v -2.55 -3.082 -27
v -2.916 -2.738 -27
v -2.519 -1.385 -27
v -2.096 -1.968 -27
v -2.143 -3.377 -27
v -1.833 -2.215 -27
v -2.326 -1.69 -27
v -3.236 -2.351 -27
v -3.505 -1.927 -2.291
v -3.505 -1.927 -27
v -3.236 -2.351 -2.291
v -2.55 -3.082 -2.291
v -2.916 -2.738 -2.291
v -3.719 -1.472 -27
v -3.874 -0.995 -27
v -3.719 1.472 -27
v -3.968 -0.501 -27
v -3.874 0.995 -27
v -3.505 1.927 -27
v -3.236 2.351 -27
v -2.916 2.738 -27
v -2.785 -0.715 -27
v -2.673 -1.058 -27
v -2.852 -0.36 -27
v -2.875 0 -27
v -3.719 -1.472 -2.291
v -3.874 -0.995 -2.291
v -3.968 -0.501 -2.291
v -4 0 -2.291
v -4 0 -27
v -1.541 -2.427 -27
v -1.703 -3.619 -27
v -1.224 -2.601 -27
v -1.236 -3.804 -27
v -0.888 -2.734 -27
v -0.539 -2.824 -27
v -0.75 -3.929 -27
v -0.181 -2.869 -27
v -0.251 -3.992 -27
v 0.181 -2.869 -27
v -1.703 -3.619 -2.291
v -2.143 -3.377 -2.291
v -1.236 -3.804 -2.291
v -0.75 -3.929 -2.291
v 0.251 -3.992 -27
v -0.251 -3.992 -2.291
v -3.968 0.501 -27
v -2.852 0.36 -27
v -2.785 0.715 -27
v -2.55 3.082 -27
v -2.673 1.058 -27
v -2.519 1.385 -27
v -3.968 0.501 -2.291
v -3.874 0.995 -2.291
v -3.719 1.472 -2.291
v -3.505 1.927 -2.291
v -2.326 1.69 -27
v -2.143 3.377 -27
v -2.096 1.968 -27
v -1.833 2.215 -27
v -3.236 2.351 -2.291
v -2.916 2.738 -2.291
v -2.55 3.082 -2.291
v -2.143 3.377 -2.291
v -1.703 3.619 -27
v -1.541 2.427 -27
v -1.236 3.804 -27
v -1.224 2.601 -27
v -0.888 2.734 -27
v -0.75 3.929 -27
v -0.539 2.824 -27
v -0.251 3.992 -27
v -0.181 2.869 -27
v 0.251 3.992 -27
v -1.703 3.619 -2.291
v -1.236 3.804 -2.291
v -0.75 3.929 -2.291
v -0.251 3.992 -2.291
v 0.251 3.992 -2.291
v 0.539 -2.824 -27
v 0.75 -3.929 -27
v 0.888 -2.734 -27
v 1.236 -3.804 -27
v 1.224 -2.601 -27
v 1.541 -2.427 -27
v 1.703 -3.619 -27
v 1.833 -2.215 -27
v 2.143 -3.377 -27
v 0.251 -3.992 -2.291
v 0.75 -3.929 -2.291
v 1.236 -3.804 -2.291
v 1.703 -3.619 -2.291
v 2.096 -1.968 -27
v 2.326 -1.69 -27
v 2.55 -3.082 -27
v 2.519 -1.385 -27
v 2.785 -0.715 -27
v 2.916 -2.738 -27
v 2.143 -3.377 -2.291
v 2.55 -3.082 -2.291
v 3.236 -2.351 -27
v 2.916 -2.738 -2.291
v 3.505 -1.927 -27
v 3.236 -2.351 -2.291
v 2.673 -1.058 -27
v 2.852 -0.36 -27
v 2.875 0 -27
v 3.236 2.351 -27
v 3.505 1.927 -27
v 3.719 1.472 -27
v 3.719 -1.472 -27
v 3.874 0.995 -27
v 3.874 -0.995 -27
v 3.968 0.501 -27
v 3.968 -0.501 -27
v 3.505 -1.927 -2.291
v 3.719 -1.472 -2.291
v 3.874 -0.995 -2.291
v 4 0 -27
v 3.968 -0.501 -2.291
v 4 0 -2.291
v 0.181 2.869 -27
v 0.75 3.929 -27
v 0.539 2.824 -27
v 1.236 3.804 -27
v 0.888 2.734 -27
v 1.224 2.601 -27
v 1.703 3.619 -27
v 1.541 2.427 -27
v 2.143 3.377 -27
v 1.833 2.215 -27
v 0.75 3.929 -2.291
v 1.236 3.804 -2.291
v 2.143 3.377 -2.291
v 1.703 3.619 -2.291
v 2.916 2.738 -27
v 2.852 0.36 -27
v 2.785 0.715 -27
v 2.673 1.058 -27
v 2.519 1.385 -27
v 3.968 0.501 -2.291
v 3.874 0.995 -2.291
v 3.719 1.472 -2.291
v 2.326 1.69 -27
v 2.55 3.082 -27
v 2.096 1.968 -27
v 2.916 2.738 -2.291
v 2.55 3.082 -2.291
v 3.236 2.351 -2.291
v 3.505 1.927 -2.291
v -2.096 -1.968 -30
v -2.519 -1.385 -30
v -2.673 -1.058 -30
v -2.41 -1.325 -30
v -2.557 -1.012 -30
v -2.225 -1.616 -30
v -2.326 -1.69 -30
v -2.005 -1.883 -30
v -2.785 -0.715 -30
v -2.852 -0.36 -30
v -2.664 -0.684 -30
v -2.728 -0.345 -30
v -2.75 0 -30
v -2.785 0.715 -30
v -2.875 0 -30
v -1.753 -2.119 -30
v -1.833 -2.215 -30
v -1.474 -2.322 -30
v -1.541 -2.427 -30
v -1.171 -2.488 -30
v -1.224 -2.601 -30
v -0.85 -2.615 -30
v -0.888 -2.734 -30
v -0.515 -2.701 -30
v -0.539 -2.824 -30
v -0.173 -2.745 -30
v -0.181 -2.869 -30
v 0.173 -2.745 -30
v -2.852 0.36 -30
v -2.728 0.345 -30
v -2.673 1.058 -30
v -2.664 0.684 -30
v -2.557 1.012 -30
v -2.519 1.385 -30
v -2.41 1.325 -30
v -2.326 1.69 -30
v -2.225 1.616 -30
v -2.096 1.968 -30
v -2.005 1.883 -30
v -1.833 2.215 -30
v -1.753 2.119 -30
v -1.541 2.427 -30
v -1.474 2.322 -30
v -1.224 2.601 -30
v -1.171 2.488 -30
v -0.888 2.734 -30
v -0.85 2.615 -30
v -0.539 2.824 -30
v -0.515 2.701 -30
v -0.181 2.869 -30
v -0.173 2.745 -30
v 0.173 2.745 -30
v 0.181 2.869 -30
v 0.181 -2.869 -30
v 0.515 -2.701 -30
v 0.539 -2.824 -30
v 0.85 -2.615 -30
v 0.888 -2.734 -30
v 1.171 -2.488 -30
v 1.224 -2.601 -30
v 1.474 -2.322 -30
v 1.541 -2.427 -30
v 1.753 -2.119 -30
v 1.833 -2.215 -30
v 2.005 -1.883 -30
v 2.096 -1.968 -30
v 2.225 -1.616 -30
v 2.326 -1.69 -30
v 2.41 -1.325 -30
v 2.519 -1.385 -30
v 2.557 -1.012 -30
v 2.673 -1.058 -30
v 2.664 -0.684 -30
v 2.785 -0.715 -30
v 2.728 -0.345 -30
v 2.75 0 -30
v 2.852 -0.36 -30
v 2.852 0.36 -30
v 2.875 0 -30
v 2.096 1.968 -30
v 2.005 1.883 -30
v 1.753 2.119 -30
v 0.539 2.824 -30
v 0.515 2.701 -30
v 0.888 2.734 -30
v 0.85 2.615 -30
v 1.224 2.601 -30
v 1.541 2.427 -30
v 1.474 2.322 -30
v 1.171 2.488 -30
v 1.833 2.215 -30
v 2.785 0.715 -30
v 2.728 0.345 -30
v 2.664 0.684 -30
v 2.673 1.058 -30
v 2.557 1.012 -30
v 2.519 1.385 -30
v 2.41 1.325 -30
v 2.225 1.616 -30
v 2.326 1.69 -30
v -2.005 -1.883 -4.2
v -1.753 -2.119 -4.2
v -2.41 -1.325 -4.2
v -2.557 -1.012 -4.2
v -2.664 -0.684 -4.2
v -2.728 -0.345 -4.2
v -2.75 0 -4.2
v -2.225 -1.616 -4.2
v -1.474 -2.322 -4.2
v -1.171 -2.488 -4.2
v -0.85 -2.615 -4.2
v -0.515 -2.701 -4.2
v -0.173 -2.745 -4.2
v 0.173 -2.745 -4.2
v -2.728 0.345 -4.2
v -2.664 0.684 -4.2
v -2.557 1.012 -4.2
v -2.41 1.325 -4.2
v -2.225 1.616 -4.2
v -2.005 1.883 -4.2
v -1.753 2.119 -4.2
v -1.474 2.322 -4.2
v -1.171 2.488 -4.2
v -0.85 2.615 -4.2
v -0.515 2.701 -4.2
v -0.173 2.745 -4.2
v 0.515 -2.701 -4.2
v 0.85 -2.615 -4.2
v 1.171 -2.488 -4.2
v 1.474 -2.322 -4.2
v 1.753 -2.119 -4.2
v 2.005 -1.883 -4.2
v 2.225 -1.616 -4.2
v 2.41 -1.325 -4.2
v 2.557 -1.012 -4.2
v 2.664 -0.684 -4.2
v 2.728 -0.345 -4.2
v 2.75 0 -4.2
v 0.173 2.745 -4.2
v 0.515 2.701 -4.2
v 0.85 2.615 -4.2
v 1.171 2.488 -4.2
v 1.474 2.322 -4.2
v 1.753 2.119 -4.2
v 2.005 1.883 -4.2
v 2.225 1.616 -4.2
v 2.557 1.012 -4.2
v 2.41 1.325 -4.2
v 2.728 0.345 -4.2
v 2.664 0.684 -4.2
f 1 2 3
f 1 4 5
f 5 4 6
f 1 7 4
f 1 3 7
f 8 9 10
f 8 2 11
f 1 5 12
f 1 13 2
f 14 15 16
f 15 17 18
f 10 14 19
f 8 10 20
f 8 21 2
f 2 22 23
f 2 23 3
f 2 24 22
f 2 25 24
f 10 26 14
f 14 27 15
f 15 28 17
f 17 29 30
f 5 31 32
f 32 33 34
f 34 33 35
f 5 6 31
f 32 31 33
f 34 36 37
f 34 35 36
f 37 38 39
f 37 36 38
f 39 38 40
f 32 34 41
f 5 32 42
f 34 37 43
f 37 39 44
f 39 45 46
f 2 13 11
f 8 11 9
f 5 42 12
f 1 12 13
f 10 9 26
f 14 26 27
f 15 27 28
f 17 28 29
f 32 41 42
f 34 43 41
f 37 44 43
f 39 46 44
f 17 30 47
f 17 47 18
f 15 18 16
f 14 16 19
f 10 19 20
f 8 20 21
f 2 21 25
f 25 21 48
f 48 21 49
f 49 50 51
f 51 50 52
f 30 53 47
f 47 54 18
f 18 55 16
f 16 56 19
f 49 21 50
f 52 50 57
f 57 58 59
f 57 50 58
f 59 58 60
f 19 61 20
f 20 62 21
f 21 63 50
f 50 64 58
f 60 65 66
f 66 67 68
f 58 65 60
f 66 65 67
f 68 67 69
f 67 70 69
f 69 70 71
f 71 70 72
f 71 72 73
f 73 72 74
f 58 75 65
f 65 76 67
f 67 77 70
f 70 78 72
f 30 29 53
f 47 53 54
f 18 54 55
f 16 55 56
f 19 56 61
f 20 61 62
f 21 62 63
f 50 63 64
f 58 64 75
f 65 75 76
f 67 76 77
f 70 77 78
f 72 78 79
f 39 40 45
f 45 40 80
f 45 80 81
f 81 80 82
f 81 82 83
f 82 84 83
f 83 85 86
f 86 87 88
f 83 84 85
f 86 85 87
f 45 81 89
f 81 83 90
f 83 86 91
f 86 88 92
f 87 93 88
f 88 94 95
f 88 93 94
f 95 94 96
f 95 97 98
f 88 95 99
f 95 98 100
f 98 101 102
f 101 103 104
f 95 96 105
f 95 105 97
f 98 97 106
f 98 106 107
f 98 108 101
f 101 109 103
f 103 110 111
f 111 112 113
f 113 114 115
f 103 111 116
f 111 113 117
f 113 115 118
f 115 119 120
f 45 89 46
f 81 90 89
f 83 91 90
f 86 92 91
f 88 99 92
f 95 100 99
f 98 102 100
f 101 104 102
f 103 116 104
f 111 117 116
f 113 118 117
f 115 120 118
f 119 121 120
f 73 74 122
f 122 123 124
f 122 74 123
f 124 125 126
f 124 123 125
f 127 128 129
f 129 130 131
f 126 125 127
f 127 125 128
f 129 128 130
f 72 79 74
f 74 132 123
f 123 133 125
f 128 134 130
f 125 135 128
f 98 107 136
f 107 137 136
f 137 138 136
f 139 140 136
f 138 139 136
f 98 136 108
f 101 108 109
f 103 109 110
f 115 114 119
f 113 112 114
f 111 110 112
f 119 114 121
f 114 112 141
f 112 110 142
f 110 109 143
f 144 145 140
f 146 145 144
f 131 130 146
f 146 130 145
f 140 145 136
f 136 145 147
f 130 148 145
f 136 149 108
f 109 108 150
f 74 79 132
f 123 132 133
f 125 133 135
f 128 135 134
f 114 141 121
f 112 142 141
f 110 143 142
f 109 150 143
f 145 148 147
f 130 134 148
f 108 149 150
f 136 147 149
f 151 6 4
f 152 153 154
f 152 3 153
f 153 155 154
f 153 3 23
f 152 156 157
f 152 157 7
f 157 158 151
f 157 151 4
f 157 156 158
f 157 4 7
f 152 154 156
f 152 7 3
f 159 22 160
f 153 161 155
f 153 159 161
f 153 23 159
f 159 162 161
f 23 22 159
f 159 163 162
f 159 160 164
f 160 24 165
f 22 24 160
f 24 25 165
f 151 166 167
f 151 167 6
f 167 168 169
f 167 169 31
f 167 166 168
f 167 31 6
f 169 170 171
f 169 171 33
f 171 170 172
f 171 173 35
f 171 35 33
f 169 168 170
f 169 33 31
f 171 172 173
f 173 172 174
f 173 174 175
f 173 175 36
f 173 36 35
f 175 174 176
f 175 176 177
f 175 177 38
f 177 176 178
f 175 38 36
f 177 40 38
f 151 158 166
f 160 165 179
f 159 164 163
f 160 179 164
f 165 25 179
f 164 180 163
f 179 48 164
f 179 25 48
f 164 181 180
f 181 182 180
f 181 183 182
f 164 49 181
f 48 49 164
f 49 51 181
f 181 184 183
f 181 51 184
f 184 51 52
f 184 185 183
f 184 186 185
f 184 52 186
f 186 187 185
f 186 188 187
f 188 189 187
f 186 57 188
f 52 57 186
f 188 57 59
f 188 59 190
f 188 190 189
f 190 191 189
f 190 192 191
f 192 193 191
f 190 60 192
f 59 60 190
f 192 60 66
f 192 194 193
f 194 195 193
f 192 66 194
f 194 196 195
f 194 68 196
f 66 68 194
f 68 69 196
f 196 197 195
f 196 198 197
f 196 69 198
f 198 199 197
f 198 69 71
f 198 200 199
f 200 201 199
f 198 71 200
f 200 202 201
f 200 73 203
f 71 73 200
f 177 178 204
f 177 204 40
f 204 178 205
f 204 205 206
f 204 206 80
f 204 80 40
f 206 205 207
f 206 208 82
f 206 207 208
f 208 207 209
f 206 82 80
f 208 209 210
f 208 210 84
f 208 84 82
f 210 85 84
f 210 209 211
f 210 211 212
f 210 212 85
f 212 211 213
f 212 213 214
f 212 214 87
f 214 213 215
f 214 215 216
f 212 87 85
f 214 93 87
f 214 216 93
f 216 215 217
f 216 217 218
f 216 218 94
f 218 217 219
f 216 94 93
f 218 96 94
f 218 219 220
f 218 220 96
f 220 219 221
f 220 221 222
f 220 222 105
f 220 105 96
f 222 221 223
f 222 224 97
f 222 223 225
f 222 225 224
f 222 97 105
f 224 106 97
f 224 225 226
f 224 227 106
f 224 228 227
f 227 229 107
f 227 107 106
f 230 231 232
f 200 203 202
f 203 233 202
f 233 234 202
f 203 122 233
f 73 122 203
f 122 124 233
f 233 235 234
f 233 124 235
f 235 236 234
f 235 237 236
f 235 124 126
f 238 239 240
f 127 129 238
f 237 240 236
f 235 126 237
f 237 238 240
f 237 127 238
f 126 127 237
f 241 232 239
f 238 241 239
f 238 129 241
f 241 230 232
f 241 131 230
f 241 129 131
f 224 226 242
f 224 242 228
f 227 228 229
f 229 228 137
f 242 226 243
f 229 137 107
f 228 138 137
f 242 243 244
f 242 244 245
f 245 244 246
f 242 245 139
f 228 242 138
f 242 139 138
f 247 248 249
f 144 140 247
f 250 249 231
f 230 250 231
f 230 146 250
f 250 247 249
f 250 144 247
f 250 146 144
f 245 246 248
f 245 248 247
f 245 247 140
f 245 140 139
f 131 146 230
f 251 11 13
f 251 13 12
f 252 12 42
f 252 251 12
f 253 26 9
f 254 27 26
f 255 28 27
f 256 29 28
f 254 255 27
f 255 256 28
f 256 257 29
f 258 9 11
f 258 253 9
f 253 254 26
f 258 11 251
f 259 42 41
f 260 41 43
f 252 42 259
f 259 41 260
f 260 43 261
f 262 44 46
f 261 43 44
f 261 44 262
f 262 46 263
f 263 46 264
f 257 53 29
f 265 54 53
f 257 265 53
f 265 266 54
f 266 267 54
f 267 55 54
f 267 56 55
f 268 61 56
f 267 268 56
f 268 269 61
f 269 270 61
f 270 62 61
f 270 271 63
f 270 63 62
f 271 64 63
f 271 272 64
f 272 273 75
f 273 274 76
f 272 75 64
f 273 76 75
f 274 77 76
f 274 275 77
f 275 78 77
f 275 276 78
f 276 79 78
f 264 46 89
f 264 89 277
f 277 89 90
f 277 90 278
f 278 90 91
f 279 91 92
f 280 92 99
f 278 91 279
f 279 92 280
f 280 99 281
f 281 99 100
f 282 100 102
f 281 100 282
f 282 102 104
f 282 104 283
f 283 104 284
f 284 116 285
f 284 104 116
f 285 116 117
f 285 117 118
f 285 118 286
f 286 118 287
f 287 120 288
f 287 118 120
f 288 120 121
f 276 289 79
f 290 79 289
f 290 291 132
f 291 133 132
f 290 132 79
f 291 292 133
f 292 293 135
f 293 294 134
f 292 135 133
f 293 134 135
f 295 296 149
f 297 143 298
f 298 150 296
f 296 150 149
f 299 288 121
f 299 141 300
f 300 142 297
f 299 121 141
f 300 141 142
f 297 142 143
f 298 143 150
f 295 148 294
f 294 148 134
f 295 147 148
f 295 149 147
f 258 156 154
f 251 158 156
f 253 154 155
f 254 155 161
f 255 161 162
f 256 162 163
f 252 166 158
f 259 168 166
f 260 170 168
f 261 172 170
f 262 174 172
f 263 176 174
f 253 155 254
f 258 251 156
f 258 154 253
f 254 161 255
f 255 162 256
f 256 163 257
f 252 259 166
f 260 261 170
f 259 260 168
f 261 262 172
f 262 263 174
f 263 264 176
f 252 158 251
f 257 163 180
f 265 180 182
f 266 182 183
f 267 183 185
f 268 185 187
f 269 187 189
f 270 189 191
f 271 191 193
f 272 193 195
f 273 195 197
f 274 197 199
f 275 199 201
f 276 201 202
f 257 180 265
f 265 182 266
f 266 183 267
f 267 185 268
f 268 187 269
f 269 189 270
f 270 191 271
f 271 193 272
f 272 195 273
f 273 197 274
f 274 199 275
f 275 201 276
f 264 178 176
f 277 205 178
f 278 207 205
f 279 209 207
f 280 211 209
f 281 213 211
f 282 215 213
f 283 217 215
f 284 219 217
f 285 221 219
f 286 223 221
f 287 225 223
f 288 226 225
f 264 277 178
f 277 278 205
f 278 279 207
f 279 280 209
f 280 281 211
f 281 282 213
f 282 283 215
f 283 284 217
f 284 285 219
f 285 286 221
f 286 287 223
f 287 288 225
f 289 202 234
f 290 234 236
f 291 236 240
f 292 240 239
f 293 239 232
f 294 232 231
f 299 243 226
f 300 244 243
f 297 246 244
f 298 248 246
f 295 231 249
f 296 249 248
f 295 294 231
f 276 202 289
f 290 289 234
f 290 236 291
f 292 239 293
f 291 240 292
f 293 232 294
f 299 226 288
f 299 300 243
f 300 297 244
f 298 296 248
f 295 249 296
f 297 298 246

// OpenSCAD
$fn = 50;

difference() {
	union() {
		translate(v = [0, 0, -27.0]) {
			cylinder(h = 27, r = 4.0);
		}
		#translate(v = [0, 0, -30.0]) {
			cylinder(h = 30, r = 2.875);
		}
	}
	union() {
		translate(v = [0, 0, 0]) {
			rotate(a = [0, 0, 0]) {
				difference() {
					union() {
						translate(v = [0, 0, -30.0]) {
							cylinder(h = 30, r = 2.25);
						}
						translate(v = [0, 0, -4.2]) {
							cylinder(h = 4.2, r1 = 2.75, r2 = 5.5);
						}
						translate(v = [0, 0, -30.0]) {
							cylinder(h = 30, r = 2.75);
						}
						translate(v = [0, 0, -30.0]) {
							cylinder(h = 30, r = 2.25);
						}
					}
					union();
				}
			}
		}
	}
}
